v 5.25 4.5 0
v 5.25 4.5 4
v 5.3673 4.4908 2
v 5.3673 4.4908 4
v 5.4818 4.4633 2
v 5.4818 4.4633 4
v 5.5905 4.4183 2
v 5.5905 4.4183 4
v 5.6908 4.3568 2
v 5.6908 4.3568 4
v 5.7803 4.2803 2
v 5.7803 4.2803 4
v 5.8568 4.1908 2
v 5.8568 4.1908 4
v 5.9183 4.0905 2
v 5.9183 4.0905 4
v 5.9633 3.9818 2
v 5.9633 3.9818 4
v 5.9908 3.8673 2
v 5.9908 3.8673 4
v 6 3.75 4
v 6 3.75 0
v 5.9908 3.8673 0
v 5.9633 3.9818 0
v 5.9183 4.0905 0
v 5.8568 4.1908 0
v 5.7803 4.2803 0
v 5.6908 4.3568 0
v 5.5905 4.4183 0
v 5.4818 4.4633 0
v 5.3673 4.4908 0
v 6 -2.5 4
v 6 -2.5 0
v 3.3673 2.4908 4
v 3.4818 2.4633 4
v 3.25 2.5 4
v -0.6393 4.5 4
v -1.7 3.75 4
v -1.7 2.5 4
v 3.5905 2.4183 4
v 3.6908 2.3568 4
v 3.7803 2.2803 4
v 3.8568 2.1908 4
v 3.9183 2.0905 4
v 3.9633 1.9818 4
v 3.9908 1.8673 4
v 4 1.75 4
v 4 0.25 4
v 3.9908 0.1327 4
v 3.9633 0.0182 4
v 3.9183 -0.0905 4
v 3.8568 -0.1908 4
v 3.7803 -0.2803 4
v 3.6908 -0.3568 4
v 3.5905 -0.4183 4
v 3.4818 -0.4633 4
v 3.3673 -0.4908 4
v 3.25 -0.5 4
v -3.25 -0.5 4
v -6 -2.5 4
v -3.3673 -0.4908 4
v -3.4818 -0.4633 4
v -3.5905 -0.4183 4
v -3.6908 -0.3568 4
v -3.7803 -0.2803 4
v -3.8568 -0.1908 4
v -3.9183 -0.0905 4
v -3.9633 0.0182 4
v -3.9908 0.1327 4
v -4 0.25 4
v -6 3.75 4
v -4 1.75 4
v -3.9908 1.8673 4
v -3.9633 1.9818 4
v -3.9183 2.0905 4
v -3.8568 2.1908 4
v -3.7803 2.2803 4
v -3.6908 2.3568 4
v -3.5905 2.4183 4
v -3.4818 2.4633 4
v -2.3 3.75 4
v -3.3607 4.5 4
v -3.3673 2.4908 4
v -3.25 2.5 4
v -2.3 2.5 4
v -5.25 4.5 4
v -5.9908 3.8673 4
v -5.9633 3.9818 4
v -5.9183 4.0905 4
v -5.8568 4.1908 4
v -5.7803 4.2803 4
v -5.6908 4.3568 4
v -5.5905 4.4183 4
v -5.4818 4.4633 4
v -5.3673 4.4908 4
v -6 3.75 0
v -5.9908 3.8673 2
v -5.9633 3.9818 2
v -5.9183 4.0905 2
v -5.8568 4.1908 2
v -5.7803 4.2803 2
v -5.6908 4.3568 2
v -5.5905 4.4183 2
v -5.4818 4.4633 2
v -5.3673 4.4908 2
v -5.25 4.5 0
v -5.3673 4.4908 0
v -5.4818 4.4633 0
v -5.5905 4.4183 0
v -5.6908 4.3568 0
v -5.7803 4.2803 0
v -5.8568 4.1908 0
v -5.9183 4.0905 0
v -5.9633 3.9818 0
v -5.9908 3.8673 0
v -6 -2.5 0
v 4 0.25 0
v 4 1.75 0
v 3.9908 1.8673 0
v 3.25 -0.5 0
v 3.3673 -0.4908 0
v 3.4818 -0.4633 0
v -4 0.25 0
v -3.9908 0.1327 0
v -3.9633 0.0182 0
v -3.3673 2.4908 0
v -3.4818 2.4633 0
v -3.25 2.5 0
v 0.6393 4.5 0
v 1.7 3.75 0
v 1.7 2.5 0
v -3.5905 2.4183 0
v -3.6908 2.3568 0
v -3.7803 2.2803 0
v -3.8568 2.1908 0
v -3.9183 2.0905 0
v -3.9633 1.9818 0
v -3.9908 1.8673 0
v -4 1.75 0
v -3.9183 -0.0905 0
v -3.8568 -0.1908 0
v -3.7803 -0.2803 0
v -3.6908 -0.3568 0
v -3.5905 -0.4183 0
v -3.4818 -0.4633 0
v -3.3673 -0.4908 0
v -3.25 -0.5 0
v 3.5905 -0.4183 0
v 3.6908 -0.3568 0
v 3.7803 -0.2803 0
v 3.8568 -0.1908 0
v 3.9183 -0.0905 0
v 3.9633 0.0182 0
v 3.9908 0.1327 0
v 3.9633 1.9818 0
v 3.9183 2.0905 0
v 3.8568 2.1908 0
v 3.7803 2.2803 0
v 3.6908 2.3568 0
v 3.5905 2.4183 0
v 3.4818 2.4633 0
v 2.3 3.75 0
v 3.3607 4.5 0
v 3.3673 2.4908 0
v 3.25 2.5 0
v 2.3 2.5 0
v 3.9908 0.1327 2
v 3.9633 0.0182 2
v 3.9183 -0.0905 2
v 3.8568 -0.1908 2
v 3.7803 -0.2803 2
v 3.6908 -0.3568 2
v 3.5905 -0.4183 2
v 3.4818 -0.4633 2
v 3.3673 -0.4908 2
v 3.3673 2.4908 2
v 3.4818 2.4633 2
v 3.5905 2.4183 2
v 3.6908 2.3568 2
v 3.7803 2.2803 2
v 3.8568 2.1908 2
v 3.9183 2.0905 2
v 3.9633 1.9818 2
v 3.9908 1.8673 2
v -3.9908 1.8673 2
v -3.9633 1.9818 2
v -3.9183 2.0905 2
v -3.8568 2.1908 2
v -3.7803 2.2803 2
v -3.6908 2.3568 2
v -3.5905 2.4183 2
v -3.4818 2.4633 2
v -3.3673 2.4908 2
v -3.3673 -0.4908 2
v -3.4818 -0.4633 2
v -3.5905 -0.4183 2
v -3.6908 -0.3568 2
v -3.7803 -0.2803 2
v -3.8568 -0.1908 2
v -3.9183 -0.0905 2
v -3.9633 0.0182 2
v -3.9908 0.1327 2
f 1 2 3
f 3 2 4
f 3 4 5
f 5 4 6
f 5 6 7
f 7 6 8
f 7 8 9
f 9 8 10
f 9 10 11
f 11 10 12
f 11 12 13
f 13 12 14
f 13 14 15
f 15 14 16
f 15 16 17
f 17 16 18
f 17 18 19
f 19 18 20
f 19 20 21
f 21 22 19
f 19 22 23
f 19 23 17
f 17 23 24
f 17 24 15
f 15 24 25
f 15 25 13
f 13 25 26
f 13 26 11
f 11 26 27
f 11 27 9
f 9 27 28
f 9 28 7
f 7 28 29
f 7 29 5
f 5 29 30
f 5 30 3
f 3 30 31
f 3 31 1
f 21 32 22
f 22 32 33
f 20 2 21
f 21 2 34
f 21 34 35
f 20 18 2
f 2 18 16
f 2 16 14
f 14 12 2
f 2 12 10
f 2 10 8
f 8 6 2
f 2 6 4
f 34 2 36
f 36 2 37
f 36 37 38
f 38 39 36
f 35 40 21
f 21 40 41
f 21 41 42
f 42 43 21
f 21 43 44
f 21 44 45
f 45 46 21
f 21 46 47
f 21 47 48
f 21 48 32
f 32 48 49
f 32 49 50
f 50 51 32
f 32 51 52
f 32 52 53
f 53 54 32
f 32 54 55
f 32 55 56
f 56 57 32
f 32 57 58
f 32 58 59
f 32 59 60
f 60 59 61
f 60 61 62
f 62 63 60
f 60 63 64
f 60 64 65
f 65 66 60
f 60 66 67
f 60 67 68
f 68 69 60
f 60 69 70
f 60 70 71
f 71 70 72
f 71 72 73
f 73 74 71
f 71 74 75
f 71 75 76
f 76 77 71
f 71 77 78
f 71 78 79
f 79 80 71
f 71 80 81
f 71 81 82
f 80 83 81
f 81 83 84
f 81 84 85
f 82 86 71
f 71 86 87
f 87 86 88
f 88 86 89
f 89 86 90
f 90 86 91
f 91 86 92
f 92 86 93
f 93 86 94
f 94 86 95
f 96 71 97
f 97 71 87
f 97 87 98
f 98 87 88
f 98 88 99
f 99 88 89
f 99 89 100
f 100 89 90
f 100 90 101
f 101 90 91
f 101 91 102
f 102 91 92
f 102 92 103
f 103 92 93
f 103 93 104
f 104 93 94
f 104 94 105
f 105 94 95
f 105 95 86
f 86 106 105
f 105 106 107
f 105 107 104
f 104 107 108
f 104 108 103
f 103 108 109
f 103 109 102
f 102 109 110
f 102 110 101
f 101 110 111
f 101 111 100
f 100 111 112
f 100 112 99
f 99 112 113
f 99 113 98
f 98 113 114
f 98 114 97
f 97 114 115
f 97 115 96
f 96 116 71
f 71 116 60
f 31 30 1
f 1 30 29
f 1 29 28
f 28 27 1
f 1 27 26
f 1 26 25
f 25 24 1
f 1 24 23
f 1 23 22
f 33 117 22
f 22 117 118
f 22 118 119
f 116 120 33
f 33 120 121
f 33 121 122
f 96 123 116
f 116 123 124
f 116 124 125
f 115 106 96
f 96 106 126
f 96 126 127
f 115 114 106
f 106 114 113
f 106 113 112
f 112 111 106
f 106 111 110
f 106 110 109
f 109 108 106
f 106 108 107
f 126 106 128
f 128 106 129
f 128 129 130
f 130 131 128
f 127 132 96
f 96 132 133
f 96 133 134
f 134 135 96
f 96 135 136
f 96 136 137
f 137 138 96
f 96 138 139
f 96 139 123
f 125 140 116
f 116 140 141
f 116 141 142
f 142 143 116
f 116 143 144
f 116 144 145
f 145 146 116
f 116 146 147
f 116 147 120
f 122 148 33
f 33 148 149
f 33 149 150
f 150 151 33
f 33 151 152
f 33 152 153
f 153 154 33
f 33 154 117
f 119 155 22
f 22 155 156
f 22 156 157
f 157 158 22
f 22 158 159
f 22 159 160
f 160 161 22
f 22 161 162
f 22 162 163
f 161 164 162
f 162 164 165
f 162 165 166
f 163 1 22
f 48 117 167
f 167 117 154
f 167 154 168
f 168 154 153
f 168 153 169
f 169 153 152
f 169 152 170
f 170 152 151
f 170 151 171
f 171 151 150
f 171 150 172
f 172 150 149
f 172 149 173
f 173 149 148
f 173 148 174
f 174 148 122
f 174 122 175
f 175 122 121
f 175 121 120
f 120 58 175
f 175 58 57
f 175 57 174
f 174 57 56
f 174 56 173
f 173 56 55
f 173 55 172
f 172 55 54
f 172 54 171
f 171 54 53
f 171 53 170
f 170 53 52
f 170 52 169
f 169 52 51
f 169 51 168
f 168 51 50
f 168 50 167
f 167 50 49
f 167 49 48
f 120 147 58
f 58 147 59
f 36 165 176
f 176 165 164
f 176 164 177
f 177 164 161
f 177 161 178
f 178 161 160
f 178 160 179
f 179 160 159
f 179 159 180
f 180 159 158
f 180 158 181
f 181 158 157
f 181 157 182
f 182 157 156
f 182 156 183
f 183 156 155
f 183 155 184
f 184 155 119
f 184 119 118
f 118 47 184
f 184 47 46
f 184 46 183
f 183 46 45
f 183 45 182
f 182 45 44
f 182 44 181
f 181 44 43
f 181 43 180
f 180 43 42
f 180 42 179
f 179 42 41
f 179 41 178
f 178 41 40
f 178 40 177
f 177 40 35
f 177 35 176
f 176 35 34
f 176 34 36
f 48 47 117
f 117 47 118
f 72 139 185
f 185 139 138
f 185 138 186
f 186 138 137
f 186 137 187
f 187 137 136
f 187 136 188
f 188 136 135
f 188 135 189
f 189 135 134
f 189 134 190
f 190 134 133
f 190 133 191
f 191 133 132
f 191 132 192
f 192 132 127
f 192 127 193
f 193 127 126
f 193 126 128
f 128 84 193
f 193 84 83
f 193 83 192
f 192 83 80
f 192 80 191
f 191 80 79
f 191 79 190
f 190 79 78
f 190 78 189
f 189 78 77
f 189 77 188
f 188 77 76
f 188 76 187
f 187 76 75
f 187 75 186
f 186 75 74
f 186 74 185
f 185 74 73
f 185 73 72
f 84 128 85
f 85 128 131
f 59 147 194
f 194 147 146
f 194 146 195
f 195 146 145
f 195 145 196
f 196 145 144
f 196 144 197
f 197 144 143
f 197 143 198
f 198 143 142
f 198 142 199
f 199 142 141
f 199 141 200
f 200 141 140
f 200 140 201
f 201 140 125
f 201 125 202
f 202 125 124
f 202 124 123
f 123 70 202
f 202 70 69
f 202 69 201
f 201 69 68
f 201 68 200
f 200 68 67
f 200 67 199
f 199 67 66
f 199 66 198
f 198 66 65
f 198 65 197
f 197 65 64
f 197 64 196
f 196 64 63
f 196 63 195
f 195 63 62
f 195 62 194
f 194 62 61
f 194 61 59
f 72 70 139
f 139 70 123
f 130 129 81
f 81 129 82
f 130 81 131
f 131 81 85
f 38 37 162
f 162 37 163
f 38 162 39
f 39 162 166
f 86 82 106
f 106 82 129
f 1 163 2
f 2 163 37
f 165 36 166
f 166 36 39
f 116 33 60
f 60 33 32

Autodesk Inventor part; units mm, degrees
ref_plane "YZ Plane" through (0, 0, 0) normal (1, 0, 0) x (0, 1, 0)
ref_plane "XZ Plane" through (0, 0, 0) normal (0, 1, 0) x (-1, 0, 0)
ref_plane "XY Plane" through (0, 0, 0) normal (0, 0, 1) x (1, 0, 0)
sketch "Sketch1" plane through (0, 0, 0) normal (0, 0, 1) x (1, 0, 0)
  circle A0 centre (0, 0) radius 1 construction
  circle A1 centre (2.5, 0) radius 1 construction
  circle A2 centre (-2.5, 0) radius 1 construction
  circle A3 centre (-1.25, 2) radius 1 construction
  circle A4 centre (1.25, 2) radius 1 construction
  line L0 (-4, 2.5) -> (4, 2.5)
  line L1 (4, 2.5) -> (4, -0.5)
  line L2 (4, -0.5) -> (-4, -0.5)
  line L3 (-4, -0.5) -> (-4, 2.5)
  line L4 (-4, 2.5) -> (4, -0.5) construction
  line L5 (4, 2.5) -> (-4, -0.5) construction
  line L6 (6, 4.5) -> (-6, 4.5)
  line L7 (-6, 4.5) -> (-6, -2.5)
  line L8 (-6, -2.5) -> (6, -2.5)
  line L9 (6, -2.5) -> (6, 4.5)
  point P0 (0, 1)
  point P1 (0, 1)
  dimension "d0" = 2
  dimension "d1" = 2.5
  dimension "d2" = 2.5
  dimension "d3" = 1.25
  dimension "d4" = 2
  dimension "d5" = 1.25
  dimension "d6" = 1
  dimension "d7" = 3
  dimension "d8" = 8
  dimension "d9" = 2
extrude "Extrusion1" add sketch "Sketch1" along normal blind 4
sketch "Sketch2" plane through (-6, 4.5, 0) normal (0, 1, 0) x (1, 0, 0)
  line L0 (2, 0) -> (2, -4) projected
  line L1 (10, 0) -> (10, -4) projected
  line L2 (4, -4) -> (8, 0) construction
  line L3 (12, -4) -> (0, -4) projected
  line L4 (12, 0) -> (0, 0) projected
  line L5 (3.7, -4) -> (7.7, 0)
  line L6 (10, 0) -> (2, 0) projected
  line L7 (4.3, -4) -> (8.3, 0)
  line L8 (3.7, -4) -> (4.3, -4)
  line L9 (7.7, 0) -> (8.3, 0)
  point P0 (6, 0)
  dimension "d12" = 2
  dimension "d13" = 2
  dimension "d15" = 0.3
  dimension "d16" = 0.3
extrude "Extrusion2" cut sketch "Sketch2" against normal blind 4 contours L4 L7 L3 L5
chamfer "Chamfer1" distance 0.75 angle 45 2 edges at (0.3, 4.5, 2) (-0.3, 4.5, 2)
fillet "Fillet1" radius 0.75 4 edges at (-4, -0.5, 2) (-4, 2.5, 2) (4, 2.5, 2) (4, -0.5, 2)
fillet "Fillet1" radius 0.75 2 edges at (-6, 4.5, 2) (6, 4.5, 2)
equation "\"d2\" = d1"
equation "\"d5\" = d3"
equation "\"d13\" = d12"
equation "\"d16\" = d15"
properties part number "Cable Clip v1"
